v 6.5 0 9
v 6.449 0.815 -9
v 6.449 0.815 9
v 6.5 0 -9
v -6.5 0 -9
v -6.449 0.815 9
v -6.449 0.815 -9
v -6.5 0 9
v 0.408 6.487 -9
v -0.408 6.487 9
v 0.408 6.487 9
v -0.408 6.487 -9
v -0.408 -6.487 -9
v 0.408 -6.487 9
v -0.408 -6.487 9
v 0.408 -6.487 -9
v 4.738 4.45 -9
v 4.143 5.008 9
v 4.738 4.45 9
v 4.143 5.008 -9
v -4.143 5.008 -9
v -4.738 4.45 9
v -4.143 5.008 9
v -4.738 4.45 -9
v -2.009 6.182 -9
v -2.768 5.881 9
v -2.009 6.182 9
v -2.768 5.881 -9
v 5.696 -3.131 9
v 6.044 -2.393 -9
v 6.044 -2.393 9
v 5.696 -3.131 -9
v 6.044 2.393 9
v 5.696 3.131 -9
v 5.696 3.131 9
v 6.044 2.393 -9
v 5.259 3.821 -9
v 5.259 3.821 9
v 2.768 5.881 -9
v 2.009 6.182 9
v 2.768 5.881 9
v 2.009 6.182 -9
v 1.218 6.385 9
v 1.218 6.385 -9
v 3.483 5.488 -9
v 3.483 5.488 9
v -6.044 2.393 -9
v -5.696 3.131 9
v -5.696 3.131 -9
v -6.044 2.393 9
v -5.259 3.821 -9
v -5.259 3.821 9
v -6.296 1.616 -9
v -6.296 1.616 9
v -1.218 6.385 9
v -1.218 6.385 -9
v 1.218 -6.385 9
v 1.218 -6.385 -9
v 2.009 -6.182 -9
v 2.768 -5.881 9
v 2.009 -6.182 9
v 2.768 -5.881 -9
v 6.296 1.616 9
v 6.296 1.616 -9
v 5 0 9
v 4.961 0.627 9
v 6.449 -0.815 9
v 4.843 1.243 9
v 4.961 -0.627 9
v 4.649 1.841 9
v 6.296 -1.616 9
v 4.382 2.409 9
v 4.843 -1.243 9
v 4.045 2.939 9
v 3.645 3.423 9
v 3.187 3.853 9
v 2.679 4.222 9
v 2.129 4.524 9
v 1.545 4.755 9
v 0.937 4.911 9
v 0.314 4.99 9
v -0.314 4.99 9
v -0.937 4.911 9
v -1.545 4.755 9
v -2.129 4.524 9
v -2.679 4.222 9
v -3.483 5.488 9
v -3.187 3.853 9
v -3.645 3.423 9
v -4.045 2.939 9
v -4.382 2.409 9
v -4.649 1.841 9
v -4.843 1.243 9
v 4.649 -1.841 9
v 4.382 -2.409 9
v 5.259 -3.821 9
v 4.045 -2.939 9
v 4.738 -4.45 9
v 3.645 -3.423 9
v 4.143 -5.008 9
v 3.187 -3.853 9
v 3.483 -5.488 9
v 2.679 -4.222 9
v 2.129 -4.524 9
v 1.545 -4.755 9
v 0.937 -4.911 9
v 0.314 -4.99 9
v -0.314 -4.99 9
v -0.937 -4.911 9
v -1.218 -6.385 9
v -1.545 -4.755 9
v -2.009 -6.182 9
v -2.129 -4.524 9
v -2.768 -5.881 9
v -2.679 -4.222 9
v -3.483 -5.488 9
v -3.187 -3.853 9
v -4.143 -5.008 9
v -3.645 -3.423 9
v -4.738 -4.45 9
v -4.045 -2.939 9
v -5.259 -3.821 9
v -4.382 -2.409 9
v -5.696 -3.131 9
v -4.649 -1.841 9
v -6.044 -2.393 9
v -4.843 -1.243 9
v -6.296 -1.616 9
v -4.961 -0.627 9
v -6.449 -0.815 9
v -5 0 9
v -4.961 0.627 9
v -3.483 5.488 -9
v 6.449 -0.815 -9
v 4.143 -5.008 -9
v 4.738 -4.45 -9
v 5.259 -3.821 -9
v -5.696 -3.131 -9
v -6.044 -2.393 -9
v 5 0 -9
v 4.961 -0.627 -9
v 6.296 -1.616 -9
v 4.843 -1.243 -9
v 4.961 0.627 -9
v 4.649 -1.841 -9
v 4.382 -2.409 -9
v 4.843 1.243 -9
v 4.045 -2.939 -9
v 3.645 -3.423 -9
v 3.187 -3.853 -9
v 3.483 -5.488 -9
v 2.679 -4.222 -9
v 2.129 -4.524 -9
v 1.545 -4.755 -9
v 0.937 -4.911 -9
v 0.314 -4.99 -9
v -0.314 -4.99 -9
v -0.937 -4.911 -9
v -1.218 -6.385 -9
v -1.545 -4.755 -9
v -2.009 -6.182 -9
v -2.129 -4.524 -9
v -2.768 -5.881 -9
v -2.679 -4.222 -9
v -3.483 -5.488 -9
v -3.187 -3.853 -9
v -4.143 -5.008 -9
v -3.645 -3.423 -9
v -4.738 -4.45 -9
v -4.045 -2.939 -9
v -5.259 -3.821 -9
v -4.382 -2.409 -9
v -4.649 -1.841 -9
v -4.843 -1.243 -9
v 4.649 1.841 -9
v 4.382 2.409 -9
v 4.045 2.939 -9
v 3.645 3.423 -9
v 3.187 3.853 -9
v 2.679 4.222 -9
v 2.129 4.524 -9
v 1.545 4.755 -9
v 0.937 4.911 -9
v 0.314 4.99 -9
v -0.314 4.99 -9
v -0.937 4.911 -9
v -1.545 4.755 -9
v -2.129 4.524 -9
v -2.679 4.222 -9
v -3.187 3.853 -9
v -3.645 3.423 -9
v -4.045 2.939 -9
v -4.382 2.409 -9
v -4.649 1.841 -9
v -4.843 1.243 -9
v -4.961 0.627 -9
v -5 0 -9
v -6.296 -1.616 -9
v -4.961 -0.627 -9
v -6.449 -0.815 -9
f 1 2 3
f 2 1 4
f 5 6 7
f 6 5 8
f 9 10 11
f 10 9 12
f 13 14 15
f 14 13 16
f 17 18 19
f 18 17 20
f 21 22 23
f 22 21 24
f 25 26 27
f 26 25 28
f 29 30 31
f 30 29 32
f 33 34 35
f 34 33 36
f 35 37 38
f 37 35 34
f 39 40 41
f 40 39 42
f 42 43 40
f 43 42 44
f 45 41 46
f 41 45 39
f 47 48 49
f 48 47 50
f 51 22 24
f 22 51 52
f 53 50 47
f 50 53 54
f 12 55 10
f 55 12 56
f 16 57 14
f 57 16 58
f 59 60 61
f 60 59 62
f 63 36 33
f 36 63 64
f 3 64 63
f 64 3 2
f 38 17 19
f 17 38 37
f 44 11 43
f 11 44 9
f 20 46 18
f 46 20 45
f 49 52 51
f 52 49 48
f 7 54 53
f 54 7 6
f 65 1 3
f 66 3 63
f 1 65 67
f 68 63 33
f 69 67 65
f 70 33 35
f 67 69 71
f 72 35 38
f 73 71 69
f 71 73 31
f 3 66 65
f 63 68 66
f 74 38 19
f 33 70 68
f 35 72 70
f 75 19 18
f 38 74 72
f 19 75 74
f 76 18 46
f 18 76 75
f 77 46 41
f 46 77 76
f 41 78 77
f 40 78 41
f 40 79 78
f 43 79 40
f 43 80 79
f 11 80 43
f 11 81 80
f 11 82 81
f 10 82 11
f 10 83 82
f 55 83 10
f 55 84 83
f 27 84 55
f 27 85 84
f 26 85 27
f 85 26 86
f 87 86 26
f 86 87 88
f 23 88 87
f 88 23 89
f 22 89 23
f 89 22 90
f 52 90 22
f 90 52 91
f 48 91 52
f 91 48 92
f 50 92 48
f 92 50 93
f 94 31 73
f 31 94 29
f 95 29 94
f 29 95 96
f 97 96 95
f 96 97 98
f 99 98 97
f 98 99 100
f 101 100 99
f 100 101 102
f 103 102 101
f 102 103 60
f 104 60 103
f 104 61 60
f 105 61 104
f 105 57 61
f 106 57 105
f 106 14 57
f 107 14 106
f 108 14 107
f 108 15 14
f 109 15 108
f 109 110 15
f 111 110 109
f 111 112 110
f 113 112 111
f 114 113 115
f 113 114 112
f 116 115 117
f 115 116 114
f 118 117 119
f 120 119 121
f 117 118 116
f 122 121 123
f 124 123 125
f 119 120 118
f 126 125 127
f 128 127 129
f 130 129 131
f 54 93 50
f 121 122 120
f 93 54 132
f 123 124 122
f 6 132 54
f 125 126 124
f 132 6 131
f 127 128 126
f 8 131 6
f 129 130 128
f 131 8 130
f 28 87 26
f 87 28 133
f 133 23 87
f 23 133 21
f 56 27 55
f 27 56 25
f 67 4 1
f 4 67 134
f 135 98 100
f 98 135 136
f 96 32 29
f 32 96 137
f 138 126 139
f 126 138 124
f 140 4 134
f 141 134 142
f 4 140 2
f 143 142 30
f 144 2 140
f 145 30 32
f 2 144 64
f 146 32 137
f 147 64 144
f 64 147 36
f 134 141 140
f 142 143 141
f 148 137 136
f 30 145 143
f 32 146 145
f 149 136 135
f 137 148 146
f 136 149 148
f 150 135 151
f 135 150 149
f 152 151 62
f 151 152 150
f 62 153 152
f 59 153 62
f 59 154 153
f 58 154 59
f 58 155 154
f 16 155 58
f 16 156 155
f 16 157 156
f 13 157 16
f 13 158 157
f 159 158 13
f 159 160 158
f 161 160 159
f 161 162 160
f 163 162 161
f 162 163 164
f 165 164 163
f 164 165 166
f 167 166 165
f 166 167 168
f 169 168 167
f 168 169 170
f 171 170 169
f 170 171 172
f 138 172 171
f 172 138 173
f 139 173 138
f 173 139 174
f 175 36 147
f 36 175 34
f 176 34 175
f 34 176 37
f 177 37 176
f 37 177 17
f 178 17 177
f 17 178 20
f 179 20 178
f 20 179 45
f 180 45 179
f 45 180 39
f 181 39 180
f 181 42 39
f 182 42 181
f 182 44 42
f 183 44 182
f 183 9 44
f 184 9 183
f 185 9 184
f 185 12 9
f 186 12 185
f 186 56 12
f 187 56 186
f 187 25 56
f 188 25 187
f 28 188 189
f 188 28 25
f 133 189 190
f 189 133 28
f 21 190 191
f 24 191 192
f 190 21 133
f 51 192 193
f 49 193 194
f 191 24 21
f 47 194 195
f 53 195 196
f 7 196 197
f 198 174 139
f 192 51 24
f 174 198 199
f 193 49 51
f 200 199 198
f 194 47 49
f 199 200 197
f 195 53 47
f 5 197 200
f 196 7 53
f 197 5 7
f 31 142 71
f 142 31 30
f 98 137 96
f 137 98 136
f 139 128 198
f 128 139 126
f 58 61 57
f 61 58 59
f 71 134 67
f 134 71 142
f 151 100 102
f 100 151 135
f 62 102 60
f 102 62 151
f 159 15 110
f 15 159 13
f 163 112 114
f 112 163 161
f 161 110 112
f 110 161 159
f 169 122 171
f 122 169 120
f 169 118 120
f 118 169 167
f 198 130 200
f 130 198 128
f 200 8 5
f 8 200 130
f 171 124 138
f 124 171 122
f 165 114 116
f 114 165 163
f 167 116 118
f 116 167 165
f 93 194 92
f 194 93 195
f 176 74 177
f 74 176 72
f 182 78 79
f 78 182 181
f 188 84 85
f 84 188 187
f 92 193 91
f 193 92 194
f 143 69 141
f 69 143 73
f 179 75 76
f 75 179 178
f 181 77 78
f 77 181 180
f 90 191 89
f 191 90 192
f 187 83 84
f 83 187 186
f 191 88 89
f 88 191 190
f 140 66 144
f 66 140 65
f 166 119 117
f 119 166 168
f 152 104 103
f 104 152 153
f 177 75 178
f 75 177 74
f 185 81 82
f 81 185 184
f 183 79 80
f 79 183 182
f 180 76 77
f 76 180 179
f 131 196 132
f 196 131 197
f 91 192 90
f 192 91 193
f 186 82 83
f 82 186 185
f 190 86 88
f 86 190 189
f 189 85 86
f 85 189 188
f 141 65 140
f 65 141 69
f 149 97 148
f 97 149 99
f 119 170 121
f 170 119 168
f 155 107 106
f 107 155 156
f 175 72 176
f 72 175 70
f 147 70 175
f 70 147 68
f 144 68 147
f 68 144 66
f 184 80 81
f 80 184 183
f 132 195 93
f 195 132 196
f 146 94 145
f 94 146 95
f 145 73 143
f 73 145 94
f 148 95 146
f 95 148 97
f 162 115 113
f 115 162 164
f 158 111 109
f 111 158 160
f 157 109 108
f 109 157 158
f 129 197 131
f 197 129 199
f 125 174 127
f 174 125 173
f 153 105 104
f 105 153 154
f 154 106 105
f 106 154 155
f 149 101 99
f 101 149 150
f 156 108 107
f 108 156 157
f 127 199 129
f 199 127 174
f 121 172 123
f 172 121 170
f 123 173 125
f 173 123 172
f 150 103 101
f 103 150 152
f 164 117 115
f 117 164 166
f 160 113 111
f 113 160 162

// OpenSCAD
$fn = 50;


difference() {
	union() {
		translate(v = [0, 0, -9.0000000000]) {
			cylinder(h = 18, r = 6.5000000000);
		}
	}
	union() {
		translate(v = [0, 0, -100.0000000000]) {
			cylinder(h = 200, r = 5.0000000000);
		}
	}
}
